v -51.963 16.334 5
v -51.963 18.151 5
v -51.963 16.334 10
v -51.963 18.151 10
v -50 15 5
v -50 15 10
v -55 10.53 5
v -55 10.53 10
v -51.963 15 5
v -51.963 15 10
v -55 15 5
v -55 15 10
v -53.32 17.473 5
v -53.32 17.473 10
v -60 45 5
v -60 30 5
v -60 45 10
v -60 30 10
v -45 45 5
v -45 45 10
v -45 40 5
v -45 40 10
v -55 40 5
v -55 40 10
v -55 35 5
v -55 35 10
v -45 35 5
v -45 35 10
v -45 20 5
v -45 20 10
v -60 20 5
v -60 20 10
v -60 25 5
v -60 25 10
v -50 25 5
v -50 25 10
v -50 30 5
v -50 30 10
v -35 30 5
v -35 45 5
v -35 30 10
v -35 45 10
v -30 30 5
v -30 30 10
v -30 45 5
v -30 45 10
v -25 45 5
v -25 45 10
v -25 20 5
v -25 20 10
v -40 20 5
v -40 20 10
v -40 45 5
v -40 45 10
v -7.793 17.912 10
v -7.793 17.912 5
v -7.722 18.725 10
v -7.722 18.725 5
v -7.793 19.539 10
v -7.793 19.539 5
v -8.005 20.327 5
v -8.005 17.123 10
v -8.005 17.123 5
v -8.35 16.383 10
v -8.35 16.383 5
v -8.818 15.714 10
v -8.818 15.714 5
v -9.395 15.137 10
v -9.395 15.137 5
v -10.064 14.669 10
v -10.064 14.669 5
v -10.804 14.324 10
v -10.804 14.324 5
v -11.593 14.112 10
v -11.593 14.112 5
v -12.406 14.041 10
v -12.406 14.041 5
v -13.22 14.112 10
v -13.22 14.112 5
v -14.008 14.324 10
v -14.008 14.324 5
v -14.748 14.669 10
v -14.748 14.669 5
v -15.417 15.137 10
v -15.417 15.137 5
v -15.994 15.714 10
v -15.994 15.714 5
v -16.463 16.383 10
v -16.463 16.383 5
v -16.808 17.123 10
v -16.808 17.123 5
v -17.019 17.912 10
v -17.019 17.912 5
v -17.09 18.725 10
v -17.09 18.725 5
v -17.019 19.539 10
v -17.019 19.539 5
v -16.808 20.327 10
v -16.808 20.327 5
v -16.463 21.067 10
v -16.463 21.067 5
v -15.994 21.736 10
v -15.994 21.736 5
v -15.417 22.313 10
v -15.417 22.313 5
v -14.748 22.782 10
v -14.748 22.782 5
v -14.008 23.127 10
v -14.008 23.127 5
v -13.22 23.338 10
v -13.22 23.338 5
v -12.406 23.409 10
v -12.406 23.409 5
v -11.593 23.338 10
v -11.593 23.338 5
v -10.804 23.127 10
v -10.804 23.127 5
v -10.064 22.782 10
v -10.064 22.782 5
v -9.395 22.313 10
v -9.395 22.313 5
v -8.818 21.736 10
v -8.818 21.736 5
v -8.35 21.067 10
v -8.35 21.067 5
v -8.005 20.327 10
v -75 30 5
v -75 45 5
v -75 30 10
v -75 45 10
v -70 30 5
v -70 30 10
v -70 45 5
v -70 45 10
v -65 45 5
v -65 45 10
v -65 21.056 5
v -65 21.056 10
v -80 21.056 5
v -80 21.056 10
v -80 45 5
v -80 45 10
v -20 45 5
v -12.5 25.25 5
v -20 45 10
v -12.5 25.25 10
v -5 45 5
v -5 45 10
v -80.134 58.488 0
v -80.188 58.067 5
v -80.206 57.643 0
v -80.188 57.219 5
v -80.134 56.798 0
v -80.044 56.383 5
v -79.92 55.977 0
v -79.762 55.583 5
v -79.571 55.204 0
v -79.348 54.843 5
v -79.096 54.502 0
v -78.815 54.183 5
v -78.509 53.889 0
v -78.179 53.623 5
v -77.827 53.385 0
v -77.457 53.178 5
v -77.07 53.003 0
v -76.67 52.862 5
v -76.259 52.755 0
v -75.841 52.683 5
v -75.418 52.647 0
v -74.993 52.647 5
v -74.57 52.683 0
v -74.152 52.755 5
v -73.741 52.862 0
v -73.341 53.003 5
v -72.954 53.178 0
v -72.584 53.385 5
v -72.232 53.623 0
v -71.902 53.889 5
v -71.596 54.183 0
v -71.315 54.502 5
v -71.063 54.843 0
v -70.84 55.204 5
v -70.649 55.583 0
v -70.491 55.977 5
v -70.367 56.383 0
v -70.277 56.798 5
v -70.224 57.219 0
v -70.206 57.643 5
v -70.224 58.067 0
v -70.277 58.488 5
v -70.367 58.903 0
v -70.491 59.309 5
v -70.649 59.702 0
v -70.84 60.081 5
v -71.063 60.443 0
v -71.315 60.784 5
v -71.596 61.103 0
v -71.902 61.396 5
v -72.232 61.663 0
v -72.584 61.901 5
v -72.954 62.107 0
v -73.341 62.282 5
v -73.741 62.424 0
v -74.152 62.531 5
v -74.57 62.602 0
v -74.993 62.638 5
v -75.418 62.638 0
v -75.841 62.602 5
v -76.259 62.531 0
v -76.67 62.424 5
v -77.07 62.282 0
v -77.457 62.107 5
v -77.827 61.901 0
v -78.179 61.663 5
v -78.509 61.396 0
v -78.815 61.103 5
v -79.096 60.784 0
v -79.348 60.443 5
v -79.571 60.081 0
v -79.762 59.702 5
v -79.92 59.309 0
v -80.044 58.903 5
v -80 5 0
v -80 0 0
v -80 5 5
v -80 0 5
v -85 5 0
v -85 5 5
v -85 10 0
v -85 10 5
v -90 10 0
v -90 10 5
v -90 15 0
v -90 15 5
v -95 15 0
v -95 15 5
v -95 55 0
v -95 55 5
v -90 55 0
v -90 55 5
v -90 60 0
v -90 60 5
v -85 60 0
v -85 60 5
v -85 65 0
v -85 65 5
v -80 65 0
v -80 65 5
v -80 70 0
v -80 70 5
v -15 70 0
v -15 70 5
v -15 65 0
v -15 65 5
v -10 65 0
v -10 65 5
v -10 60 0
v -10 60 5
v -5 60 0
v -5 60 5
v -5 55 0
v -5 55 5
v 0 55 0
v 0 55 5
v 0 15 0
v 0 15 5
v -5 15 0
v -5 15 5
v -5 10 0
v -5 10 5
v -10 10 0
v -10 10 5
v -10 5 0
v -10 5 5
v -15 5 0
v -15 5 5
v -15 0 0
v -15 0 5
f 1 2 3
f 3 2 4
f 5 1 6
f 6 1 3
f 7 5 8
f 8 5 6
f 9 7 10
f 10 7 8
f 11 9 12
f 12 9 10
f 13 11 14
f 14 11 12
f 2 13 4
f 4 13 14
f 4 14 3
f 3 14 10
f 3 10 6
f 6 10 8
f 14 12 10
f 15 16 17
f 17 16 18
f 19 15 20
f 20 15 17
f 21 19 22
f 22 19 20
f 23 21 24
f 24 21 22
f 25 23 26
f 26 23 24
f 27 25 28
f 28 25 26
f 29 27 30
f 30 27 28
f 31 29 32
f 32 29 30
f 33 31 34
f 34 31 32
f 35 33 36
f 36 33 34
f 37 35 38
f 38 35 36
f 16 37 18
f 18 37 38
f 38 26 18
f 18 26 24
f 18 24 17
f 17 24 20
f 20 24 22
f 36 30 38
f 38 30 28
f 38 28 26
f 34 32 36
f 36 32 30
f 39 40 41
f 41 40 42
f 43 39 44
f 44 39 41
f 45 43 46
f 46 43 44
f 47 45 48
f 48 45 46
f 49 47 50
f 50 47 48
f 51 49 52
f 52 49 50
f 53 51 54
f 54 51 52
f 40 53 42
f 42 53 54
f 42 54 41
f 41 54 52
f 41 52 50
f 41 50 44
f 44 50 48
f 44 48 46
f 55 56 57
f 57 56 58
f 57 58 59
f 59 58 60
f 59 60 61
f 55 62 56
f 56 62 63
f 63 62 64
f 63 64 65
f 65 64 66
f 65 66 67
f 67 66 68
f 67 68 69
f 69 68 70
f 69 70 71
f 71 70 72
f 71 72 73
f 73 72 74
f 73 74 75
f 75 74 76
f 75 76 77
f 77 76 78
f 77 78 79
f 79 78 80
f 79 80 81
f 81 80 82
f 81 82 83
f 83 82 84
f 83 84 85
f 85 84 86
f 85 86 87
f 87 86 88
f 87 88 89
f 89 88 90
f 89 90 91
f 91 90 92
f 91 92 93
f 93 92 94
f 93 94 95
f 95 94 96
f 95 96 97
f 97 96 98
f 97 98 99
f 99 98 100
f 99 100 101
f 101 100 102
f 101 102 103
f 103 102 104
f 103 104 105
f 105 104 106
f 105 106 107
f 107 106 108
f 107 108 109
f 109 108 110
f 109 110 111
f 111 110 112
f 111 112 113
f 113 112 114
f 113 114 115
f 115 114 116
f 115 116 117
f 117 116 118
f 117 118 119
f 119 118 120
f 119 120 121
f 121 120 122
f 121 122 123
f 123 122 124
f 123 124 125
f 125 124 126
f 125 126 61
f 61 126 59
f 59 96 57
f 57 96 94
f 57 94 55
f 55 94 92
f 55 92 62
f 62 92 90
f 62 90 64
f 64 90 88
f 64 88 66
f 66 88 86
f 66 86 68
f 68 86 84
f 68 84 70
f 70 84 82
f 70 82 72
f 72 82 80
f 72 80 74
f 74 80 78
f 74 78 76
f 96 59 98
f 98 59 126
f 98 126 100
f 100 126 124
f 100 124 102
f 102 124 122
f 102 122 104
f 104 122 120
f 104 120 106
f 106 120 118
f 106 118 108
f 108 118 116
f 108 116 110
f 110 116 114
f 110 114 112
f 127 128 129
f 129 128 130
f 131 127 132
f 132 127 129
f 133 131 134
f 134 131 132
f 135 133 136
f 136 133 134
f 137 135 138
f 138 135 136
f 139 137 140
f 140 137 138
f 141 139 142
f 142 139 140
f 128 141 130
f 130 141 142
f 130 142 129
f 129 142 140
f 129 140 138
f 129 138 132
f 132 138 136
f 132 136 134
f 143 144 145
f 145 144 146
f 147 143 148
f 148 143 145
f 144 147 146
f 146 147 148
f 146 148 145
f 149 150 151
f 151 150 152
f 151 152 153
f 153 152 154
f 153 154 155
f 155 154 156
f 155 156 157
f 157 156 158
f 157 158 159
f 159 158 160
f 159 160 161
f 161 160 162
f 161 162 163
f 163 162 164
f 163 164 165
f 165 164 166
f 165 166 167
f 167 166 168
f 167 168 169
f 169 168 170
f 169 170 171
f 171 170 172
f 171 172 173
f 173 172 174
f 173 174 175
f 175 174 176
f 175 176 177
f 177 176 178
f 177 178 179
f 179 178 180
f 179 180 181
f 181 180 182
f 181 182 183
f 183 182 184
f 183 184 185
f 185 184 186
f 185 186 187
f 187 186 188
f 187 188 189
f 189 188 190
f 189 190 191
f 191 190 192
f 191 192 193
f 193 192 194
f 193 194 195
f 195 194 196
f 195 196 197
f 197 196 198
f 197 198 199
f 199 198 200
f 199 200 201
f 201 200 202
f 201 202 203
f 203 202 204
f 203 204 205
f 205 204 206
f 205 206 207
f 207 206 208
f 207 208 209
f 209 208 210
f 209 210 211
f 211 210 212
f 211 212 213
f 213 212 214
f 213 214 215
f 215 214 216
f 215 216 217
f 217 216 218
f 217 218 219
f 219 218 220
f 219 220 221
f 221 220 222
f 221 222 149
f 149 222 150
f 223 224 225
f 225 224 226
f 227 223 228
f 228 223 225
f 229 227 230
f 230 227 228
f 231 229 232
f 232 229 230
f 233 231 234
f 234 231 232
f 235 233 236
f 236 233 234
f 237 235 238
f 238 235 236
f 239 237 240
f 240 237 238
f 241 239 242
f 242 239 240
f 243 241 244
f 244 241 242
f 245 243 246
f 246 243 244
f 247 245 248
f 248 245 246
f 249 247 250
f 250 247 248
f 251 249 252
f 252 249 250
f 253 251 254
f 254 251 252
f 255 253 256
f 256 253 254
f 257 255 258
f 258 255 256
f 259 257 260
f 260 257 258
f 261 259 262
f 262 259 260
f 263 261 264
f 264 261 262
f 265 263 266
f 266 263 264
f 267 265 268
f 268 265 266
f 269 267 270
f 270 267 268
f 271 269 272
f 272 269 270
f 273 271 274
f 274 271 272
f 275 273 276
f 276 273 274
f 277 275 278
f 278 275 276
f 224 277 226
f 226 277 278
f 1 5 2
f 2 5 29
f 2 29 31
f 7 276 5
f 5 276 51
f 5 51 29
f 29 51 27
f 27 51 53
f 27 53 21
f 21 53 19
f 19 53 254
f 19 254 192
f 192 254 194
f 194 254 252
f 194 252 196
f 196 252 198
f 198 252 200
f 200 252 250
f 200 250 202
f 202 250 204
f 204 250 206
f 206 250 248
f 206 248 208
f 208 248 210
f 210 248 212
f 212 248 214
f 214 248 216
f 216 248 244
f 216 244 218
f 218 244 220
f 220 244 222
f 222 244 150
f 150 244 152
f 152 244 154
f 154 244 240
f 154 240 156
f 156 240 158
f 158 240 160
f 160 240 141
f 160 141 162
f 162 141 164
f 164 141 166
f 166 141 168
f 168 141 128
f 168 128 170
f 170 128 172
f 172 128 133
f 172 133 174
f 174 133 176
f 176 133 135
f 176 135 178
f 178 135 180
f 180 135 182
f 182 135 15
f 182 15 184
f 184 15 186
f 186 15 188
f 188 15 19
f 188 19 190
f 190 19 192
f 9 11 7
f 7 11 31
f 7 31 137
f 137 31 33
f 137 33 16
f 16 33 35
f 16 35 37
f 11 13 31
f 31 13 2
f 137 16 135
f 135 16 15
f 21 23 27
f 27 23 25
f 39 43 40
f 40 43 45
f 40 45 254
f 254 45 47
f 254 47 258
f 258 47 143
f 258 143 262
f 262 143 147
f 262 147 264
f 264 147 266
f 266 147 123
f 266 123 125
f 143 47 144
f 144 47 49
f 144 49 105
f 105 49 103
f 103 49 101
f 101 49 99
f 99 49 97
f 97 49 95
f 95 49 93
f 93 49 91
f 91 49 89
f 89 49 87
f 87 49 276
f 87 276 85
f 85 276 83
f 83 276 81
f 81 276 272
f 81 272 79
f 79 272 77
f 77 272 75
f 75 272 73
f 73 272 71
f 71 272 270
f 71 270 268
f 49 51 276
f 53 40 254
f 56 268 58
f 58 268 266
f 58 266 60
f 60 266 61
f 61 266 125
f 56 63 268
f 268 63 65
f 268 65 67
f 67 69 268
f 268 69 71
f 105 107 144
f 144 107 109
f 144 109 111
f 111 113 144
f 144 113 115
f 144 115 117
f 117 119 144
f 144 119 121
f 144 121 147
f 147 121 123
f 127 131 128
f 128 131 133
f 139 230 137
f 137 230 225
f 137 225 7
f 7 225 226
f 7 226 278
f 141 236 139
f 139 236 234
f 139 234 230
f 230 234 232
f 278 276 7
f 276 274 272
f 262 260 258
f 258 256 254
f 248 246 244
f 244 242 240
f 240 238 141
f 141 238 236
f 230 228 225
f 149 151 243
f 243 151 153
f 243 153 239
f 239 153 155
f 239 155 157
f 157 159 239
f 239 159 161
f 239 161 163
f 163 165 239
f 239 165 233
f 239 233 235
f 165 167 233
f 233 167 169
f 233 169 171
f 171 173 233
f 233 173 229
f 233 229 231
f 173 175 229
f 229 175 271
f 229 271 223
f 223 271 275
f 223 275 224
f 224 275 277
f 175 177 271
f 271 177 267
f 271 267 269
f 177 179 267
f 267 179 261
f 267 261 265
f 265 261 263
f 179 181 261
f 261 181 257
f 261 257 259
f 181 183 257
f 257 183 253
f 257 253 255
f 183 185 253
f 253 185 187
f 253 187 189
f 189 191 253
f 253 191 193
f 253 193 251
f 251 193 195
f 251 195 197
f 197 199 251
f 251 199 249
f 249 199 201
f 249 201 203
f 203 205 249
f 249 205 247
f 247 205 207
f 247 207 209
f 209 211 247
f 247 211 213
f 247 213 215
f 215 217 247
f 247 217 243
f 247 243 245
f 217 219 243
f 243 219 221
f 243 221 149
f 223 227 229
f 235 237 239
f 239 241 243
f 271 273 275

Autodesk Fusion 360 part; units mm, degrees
sketch "Sketch1" plane through (0, 0, 0) normal (0, 0, 1) x (1, 0, 0)
  line L0 (-25, 0) -> (-15, 0)
  line L1 (-15, 0) -> (-15, 5)
  line L2 (-15, 5) -> (-10, 5)
  line L3 (-10, 5) -> (-10, 10)
  line L4 (-10, 10) -> (-5, 10)
  line L5 (-5, 10) -> (-5, 15)
  line L6 (-5, 15) -> (-1.7883, 15)
  line L7 (-1.7883, 15) -> (0, 15)
  line L8 (0, 15) -> (0, 55)
  line L9 (0, 55) -> (-5, 55)
  line L10 (-5, 55) -> (-5, 60)
  line L11 (-5, 60) -> (-10, 60)
  line L12 (-10, 60) -> (-10, 65)
  line L13 (-10, 65) -> (-15, 65)
  line L14 (-15, 65) -> (-15, 70)
  line L15 (-15, 70) -> (-80, 70)
  line L16 (-80, 70) -> (-80, 65)
  line L17 (-80, 65) -> (-85, 65)
  line L18 (-85, 65) -> (-85, 60)
  line L19 (-85, 60) -> (-90, 60)
  line L20 (-90, 60) -> (-90, 55)
  line L21 (-90, 55) -> (-95, 55)
  line L22 (-95, 55) -> (-95, 15)
  line L23 (-95, 15) -> (-90, 15)
  line L24 (-90, 15) -> (-90, 10)
  line L25 (-90, 10) -> (-85, 10)
  line L26 (-85, 10) -> (-85, 5)
  line L27 (-85, 5) -> (-80, 5)
  line L28 (-80, 5) -> (-80, 0)
  line L29 (-80, 0) -> (-25, 0)
extrude "Extrude1" add sketch "Sketch1" along normal blind 5
hole "Hole1" at (-75.2055, 57.6429, 5) direction (0, 0, -1) diameter 10 depth 30 tip angle 118
sketch "Sketch2" plane through (0, 0, 5) normal (0, 0, 1) x (-1, 0, 0)
  circle A0 centre (75.2055, -57.6429) radius 5
  line L0 (80, 0) -> (15, 0)
  line L1 (15, 0) -> (15, -5)
  line L2 (15, -5) -> (10, -5)
  line L3 (10, -5) -> (10, -10)
  line L4 (10, -10) -> (5, -10)
  line L5 (5, -10) -> (5, -15)
  line L6 (5, -15) -> (0, -15)
  line L7 (0, -15) -> (0, -55)
  line L8 (0, -55) -> (5, -55)
  line L9 (5, -55) -> (5, -60)
  line L10 (5, -60) -> (10, -60)
  line L11 (10, -60) -> (10, -65)
  line L12 (10, -65) -> (15, -65)
  line L13 (15, -65) -> (15, -70)
  line L14 (15, -70) -> (80, -70)
  line L15 (80, -70) -> (80, -65)
  line L16 (80, -65) -> (85, -65)
  line L17 (85, -65) -> (85, -60)
  line L18 (85, -60) -> (90, -60)
  line L19 (90, -60) -> (90, -55)
  line L20 (90, -55) -> (95, -55)
  line L21 (95, -55) -> (95, -15)
  line L22 (95, -15) -> (90, -15)
  line L23 (90, -15) -> (90, -10)
  line L24 (90, -10) -> (85, -10)
  line L25 (85, -10) -> (85, -5)
  line L26 (85, -5) -> (80, -5)
  line L27 (80, -5) -> (80, 0)
  line L28 (80, -45) -> (80, -21.0556)
  line L29 (80, -21.0556) -> (65, -21.0556)
  line L30 (65, -21.0556) -> (65, -43.5828)
  line L31 (65, -43.5828) -> (65, -45)
  line L32 (65, -45) -> (70, -45)
  line L33 (70, -45) -> (70, -30)
  line L34 (70, -30) -> (75, -30)
  line L35 (75, -30) -> (75, -45)
  line L36 (75, -45) -> (80, -45)
  line L37 (60, -45) -> (45, -45)
  line L38 (45, -45) -> (45, -40)
  line L39 (45, -40) -> (55, -40)
  line L40 (55, -40) -> (55, -35)
  line L41 (55, -35) -> (45, -35)
  line L42 (45, -35) -> (45, -25)
  line L43 (45, -25) -> (45, -20)
  line L44 (45, -20) -> (60, -20)
  line L45 (60, -20) -> (60, -25)
  line L46 (60, -25) -> (50, -25)
  line L47 (50, -25) -> (50, -30)
  line L48 (50, -30) -> (60, -30)
  line L49 (60, -30) -> (60, -45)
  line L50 (40, -45) -> (40, -20)
  line L51 (40, -20) -> (25, -20)
  line L52 (25, -20) -> (25, -45)
  line L53 (25, -45) -> (30, -45)
  line L54 (30, -45) -> (30, -30)
  line L55 (30, -30) -> (35, -30)
  line L56 (35, -30) -> (35, -45)
  line L57 (35, -45) -> (40, -45)
  line L58 (20, -45) -> (5, -45)
  line L59 (5, -45) -> (12.5, -25.2503)
  line L60 (12.5, -25.2503) -> (20, -45)
  circle A1 centre (12.4062, -18.7252) radius 4.684
  line L61 (53.32, -17.4727) -> (55, -15)
  line L62 (55, -15) -> (51.9633, -15)
  line L63 (51.9633, -15) -> (55, -10.5305)
  line L64 (55, -10.5305) -> (50, -15)
  line L65 (50, -15) -> (51.9633, -16.3339)
  line L66 (51.9633, -16.3339) -> (51.9633, -18.151)
  line L67 (51.9633, -18.151) -> (53.32, -17.4727)
extrude "Extrude2" add sketch "Sketch2" along normal blind 5 contours L28 L29 L30 L31 L32 L33 L34 L35 L36 | L37 L38 L39 L40 L41 L42 L43 L44 L45 L46 L47 L48 L49 | L50 L51 L52 L53 L54 L55 L56 L57 | L58 L59 L60 | A1 | L61 L62 L63 L64 L65 L66 L67
